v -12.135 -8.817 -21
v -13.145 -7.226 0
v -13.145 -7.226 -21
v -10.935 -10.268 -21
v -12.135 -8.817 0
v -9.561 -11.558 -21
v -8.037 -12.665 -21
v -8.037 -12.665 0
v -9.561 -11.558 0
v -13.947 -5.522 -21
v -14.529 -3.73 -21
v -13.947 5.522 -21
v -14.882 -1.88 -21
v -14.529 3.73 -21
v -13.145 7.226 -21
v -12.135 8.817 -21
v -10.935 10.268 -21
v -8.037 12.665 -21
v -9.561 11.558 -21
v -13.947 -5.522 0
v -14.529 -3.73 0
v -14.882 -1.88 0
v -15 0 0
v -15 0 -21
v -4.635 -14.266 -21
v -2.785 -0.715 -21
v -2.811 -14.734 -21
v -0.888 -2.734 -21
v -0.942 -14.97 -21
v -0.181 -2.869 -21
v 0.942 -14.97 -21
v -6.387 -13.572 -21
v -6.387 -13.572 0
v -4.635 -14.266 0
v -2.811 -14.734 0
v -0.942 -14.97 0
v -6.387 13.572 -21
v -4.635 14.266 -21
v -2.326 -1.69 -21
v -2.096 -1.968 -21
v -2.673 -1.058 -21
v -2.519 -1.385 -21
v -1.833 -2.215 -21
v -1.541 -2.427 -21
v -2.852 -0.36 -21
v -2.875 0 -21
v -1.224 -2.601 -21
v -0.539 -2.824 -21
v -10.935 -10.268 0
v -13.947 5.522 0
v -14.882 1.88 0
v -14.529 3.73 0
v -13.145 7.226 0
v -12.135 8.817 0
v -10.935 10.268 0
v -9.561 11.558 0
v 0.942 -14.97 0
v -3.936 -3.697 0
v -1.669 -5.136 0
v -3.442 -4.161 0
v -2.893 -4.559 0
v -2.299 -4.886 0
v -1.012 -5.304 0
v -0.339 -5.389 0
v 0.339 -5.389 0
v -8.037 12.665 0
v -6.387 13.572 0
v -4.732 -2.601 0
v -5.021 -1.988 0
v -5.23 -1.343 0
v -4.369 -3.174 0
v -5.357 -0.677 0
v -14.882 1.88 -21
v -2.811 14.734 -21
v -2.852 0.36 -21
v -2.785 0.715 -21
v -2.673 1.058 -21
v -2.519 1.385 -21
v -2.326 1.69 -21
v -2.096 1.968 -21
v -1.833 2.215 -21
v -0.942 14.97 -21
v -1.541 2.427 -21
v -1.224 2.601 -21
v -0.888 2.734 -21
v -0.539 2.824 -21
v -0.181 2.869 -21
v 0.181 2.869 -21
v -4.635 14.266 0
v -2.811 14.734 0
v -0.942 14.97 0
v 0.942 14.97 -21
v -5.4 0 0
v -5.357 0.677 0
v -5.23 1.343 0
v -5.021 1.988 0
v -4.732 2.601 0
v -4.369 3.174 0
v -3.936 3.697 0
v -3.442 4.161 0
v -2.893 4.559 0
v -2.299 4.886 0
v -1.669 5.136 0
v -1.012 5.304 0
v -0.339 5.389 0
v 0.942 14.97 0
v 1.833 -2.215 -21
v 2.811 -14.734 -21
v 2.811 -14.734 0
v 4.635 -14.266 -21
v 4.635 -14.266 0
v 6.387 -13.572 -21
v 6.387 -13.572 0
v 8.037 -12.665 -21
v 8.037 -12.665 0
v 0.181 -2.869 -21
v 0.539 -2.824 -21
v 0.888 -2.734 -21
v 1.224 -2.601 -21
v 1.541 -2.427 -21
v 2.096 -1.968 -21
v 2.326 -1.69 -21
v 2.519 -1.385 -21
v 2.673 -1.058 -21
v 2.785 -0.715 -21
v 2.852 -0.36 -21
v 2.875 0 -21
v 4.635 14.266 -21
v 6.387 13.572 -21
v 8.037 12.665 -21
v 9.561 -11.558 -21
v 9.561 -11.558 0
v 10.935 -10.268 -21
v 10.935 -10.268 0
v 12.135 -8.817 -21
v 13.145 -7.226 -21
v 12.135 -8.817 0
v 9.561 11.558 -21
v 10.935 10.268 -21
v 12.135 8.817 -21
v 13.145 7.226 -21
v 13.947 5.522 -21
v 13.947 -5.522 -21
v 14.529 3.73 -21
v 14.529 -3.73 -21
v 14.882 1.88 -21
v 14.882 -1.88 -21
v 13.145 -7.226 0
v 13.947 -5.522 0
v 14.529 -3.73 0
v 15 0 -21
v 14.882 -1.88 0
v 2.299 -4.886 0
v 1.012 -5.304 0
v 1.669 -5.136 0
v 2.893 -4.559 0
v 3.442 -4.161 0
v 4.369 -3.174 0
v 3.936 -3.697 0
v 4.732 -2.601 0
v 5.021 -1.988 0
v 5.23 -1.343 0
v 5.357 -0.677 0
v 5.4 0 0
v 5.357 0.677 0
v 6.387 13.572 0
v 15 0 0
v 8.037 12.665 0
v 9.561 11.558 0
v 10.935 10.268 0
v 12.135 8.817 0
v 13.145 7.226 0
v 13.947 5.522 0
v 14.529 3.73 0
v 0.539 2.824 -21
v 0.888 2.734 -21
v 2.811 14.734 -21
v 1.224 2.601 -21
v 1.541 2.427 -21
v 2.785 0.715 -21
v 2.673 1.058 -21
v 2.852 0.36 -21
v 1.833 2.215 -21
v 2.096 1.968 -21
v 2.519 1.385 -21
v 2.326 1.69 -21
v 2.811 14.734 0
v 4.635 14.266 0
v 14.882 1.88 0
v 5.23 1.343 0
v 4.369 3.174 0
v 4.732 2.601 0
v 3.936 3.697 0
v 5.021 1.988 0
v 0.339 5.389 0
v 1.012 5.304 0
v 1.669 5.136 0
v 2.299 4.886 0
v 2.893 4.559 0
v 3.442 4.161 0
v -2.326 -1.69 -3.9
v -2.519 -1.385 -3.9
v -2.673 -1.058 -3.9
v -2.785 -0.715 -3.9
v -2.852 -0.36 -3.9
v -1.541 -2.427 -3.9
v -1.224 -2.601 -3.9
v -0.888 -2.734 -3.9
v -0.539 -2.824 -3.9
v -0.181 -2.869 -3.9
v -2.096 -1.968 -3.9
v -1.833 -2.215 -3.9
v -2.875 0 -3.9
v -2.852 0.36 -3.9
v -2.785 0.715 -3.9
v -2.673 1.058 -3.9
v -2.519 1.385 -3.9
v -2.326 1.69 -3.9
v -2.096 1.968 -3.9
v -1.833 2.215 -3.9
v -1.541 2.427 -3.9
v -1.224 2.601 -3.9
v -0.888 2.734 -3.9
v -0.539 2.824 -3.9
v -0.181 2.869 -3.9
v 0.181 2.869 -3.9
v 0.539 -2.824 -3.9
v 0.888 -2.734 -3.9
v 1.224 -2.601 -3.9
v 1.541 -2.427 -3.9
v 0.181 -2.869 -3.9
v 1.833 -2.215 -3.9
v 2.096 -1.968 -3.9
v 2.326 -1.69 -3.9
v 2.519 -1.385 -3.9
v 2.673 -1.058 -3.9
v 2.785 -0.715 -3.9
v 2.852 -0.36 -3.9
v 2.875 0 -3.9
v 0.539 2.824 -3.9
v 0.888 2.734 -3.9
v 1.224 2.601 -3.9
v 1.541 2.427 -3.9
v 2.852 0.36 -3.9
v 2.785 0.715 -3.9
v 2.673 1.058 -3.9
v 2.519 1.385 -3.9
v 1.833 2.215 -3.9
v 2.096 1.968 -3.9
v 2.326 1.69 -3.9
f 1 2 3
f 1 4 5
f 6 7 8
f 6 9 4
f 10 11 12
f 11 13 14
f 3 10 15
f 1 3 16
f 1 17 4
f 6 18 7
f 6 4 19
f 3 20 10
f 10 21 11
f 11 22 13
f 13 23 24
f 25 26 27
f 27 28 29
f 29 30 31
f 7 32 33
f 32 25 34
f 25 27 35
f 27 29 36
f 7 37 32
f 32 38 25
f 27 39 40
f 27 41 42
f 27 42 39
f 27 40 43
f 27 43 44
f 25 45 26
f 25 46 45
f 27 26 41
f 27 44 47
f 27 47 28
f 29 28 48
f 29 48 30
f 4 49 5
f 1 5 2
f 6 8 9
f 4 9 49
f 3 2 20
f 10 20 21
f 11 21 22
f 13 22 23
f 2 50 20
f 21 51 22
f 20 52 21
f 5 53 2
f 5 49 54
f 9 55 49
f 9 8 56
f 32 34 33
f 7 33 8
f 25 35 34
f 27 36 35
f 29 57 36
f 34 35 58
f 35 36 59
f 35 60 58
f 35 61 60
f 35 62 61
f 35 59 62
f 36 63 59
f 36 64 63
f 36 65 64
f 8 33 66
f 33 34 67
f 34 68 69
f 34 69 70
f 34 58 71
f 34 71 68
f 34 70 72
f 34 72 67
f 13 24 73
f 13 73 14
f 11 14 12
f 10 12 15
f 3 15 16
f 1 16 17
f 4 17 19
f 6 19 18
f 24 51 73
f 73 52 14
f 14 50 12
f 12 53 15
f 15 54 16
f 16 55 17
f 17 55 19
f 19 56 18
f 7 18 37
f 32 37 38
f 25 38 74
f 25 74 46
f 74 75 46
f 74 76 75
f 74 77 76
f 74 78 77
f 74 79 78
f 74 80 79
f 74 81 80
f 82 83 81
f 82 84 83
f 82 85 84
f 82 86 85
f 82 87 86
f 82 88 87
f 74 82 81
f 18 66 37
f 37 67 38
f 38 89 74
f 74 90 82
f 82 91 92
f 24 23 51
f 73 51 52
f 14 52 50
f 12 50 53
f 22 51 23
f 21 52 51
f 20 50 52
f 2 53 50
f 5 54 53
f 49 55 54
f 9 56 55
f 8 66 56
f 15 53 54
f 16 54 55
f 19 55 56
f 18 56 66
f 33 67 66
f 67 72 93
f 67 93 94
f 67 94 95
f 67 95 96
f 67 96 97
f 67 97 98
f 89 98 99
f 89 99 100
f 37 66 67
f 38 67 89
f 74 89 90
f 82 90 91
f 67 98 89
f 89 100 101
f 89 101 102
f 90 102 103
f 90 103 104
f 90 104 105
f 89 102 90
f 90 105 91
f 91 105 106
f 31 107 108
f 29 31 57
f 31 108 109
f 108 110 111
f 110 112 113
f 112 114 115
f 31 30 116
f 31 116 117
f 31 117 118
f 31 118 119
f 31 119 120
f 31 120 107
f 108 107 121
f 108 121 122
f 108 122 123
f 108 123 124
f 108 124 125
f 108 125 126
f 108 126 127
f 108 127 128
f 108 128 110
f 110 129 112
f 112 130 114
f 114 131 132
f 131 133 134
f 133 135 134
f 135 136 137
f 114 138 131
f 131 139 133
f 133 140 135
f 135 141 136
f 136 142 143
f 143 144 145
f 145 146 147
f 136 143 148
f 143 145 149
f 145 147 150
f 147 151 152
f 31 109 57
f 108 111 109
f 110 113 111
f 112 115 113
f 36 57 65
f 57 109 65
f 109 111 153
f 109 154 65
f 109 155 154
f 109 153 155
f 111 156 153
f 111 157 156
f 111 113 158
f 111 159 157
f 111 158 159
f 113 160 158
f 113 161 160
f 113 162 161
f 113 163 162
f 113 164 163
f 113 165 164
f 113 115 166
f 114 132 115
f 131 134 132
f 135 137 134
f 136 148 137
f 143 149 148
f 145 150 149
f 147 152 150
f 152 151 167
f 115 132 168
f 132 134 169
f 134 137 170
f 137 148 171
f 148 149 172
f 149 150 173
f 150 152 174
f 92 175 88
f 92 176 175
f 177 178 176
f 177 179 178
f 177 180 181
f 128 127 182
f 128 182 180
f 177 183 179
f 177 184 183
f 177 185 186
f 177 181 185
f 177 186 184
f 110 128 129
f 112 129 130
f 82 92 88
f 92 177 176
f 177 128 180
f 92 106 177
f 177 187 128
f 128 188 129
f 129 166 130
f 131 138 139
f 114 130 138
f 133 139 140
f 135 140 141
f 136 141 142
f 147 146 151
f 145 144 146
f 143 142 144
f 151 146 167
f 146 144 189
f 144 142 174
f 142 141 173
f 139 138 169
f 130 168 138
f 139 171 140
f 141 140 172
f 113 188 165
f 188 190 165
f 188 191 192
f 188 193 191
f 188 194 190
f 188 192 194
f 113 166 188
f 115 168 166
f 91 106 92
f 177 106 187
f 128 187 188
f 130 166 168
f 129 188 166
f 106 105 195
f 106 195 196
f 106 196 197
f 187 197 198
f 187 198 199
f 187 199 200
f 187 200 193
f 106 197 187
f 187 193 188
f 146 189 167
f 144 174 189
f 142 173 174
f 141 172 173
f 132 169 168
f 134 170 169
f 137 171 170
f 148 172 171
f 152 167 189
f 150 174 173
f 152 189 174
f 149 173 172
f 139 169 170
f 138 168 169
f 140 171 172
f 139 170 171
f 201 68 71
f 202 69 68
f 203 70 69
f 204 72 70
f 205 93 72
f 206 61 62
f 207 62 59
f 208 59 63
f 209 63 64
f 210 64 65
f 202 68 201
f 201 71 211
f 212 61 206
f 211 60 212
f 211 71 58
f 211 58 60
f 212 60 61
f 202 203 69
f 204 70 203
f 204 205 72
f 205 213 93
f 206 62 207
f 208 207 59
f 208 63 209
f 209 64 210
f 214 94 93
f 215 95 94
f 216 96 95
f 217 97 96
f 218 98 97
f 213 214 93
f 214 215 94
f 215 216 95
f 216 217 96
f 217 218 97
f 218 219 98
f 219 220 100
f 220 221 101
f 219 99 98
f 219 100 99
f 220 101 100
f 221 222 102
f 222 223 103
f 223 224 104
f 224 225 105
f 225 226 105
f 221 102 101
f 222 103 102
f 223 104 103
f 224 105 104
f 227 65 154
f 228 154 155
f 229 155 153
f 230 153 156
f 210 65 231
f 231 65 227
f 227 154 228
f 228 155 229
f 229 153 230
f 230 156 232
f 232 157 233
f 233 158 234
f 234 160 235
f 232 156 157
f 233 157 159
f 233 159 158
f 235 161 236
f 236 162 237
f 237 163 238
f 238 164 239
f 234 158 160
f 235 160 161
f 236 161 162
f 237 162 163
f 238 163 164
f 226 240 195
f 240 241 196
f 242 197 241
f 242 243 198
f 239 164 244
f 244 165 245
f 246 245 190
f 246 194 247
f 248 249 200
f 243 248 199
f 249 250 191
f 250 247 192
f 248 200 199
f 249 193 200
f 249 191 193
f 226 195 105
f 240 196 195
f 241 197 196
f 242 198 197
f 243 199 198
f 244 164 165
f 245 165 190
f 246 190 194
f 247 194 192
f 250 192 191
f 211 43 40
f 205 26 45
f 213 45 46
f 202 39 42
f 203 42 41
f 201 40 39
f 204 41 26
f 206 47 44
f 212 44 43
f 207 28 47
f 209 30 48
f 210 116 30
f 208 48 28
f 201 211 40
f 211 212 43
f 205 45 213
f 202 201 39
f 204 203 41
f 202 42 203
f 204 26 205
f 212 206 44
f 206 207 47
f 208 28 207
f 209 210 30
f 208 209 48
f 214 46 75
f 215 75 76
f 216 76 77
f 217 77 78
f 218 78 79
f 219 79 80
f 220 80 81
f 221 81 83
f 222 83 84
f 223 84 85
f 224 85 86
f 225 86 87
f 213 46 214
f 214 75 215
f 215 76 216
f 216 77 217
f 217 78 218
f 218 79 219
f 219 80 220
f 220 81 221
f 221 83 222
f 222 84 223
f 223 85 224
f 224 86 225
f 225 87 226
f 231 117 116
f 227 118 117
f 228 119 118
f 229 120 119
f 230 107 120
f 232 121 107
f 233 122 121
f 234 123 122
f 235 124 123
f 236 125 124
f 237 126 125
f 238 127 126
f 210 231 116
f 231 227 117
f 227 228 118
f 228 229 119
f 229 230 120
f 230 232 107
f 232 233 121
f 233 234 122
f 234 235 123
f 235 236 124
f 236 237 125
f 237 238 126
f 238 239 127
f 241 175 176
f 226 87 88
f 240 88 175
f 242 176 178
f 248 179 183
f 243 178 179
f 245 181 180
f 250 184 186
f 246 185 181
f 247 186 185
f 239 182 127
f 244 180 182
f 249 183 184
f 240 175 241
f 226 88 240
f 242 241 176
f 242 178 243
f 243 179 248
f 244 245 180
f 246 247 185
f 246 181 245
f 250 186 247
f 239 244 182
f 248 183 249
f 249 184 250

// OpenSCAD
$fn = 50;

difference() {
	union() {
		translate(v = [0, 0, -21.0]) {
			cylinder(h = 21, r = 15.0);
		}
		#translate(v = [0, 0, -24.0]) {
			cylinder(h = 24, r = 2.875);
		}
	}
	union() {
		translate(v = [0, 0, 0]) {
			rotate(a = [0, 0, 0]) {
				difference() {
					union() {
						translate(v = [0, 0, -24.0]) {
							cylinder(h = 24, r = 2.6);
						}
						translate(v = [0, 0, -3.9]) {
							cylinder(h = 3.9, r1 = 2.875, r2 = 5.4);
						}
						translate(v = [0, 0, -24.0]) {
							cylinder(h = 24, r = 2.875);
						}
						translate(v = [0, 0, -24.0]) {
							cylinder(h = 24, r = 2.6);
						}
					}
					union();
				}
			}
		}
	}
}
